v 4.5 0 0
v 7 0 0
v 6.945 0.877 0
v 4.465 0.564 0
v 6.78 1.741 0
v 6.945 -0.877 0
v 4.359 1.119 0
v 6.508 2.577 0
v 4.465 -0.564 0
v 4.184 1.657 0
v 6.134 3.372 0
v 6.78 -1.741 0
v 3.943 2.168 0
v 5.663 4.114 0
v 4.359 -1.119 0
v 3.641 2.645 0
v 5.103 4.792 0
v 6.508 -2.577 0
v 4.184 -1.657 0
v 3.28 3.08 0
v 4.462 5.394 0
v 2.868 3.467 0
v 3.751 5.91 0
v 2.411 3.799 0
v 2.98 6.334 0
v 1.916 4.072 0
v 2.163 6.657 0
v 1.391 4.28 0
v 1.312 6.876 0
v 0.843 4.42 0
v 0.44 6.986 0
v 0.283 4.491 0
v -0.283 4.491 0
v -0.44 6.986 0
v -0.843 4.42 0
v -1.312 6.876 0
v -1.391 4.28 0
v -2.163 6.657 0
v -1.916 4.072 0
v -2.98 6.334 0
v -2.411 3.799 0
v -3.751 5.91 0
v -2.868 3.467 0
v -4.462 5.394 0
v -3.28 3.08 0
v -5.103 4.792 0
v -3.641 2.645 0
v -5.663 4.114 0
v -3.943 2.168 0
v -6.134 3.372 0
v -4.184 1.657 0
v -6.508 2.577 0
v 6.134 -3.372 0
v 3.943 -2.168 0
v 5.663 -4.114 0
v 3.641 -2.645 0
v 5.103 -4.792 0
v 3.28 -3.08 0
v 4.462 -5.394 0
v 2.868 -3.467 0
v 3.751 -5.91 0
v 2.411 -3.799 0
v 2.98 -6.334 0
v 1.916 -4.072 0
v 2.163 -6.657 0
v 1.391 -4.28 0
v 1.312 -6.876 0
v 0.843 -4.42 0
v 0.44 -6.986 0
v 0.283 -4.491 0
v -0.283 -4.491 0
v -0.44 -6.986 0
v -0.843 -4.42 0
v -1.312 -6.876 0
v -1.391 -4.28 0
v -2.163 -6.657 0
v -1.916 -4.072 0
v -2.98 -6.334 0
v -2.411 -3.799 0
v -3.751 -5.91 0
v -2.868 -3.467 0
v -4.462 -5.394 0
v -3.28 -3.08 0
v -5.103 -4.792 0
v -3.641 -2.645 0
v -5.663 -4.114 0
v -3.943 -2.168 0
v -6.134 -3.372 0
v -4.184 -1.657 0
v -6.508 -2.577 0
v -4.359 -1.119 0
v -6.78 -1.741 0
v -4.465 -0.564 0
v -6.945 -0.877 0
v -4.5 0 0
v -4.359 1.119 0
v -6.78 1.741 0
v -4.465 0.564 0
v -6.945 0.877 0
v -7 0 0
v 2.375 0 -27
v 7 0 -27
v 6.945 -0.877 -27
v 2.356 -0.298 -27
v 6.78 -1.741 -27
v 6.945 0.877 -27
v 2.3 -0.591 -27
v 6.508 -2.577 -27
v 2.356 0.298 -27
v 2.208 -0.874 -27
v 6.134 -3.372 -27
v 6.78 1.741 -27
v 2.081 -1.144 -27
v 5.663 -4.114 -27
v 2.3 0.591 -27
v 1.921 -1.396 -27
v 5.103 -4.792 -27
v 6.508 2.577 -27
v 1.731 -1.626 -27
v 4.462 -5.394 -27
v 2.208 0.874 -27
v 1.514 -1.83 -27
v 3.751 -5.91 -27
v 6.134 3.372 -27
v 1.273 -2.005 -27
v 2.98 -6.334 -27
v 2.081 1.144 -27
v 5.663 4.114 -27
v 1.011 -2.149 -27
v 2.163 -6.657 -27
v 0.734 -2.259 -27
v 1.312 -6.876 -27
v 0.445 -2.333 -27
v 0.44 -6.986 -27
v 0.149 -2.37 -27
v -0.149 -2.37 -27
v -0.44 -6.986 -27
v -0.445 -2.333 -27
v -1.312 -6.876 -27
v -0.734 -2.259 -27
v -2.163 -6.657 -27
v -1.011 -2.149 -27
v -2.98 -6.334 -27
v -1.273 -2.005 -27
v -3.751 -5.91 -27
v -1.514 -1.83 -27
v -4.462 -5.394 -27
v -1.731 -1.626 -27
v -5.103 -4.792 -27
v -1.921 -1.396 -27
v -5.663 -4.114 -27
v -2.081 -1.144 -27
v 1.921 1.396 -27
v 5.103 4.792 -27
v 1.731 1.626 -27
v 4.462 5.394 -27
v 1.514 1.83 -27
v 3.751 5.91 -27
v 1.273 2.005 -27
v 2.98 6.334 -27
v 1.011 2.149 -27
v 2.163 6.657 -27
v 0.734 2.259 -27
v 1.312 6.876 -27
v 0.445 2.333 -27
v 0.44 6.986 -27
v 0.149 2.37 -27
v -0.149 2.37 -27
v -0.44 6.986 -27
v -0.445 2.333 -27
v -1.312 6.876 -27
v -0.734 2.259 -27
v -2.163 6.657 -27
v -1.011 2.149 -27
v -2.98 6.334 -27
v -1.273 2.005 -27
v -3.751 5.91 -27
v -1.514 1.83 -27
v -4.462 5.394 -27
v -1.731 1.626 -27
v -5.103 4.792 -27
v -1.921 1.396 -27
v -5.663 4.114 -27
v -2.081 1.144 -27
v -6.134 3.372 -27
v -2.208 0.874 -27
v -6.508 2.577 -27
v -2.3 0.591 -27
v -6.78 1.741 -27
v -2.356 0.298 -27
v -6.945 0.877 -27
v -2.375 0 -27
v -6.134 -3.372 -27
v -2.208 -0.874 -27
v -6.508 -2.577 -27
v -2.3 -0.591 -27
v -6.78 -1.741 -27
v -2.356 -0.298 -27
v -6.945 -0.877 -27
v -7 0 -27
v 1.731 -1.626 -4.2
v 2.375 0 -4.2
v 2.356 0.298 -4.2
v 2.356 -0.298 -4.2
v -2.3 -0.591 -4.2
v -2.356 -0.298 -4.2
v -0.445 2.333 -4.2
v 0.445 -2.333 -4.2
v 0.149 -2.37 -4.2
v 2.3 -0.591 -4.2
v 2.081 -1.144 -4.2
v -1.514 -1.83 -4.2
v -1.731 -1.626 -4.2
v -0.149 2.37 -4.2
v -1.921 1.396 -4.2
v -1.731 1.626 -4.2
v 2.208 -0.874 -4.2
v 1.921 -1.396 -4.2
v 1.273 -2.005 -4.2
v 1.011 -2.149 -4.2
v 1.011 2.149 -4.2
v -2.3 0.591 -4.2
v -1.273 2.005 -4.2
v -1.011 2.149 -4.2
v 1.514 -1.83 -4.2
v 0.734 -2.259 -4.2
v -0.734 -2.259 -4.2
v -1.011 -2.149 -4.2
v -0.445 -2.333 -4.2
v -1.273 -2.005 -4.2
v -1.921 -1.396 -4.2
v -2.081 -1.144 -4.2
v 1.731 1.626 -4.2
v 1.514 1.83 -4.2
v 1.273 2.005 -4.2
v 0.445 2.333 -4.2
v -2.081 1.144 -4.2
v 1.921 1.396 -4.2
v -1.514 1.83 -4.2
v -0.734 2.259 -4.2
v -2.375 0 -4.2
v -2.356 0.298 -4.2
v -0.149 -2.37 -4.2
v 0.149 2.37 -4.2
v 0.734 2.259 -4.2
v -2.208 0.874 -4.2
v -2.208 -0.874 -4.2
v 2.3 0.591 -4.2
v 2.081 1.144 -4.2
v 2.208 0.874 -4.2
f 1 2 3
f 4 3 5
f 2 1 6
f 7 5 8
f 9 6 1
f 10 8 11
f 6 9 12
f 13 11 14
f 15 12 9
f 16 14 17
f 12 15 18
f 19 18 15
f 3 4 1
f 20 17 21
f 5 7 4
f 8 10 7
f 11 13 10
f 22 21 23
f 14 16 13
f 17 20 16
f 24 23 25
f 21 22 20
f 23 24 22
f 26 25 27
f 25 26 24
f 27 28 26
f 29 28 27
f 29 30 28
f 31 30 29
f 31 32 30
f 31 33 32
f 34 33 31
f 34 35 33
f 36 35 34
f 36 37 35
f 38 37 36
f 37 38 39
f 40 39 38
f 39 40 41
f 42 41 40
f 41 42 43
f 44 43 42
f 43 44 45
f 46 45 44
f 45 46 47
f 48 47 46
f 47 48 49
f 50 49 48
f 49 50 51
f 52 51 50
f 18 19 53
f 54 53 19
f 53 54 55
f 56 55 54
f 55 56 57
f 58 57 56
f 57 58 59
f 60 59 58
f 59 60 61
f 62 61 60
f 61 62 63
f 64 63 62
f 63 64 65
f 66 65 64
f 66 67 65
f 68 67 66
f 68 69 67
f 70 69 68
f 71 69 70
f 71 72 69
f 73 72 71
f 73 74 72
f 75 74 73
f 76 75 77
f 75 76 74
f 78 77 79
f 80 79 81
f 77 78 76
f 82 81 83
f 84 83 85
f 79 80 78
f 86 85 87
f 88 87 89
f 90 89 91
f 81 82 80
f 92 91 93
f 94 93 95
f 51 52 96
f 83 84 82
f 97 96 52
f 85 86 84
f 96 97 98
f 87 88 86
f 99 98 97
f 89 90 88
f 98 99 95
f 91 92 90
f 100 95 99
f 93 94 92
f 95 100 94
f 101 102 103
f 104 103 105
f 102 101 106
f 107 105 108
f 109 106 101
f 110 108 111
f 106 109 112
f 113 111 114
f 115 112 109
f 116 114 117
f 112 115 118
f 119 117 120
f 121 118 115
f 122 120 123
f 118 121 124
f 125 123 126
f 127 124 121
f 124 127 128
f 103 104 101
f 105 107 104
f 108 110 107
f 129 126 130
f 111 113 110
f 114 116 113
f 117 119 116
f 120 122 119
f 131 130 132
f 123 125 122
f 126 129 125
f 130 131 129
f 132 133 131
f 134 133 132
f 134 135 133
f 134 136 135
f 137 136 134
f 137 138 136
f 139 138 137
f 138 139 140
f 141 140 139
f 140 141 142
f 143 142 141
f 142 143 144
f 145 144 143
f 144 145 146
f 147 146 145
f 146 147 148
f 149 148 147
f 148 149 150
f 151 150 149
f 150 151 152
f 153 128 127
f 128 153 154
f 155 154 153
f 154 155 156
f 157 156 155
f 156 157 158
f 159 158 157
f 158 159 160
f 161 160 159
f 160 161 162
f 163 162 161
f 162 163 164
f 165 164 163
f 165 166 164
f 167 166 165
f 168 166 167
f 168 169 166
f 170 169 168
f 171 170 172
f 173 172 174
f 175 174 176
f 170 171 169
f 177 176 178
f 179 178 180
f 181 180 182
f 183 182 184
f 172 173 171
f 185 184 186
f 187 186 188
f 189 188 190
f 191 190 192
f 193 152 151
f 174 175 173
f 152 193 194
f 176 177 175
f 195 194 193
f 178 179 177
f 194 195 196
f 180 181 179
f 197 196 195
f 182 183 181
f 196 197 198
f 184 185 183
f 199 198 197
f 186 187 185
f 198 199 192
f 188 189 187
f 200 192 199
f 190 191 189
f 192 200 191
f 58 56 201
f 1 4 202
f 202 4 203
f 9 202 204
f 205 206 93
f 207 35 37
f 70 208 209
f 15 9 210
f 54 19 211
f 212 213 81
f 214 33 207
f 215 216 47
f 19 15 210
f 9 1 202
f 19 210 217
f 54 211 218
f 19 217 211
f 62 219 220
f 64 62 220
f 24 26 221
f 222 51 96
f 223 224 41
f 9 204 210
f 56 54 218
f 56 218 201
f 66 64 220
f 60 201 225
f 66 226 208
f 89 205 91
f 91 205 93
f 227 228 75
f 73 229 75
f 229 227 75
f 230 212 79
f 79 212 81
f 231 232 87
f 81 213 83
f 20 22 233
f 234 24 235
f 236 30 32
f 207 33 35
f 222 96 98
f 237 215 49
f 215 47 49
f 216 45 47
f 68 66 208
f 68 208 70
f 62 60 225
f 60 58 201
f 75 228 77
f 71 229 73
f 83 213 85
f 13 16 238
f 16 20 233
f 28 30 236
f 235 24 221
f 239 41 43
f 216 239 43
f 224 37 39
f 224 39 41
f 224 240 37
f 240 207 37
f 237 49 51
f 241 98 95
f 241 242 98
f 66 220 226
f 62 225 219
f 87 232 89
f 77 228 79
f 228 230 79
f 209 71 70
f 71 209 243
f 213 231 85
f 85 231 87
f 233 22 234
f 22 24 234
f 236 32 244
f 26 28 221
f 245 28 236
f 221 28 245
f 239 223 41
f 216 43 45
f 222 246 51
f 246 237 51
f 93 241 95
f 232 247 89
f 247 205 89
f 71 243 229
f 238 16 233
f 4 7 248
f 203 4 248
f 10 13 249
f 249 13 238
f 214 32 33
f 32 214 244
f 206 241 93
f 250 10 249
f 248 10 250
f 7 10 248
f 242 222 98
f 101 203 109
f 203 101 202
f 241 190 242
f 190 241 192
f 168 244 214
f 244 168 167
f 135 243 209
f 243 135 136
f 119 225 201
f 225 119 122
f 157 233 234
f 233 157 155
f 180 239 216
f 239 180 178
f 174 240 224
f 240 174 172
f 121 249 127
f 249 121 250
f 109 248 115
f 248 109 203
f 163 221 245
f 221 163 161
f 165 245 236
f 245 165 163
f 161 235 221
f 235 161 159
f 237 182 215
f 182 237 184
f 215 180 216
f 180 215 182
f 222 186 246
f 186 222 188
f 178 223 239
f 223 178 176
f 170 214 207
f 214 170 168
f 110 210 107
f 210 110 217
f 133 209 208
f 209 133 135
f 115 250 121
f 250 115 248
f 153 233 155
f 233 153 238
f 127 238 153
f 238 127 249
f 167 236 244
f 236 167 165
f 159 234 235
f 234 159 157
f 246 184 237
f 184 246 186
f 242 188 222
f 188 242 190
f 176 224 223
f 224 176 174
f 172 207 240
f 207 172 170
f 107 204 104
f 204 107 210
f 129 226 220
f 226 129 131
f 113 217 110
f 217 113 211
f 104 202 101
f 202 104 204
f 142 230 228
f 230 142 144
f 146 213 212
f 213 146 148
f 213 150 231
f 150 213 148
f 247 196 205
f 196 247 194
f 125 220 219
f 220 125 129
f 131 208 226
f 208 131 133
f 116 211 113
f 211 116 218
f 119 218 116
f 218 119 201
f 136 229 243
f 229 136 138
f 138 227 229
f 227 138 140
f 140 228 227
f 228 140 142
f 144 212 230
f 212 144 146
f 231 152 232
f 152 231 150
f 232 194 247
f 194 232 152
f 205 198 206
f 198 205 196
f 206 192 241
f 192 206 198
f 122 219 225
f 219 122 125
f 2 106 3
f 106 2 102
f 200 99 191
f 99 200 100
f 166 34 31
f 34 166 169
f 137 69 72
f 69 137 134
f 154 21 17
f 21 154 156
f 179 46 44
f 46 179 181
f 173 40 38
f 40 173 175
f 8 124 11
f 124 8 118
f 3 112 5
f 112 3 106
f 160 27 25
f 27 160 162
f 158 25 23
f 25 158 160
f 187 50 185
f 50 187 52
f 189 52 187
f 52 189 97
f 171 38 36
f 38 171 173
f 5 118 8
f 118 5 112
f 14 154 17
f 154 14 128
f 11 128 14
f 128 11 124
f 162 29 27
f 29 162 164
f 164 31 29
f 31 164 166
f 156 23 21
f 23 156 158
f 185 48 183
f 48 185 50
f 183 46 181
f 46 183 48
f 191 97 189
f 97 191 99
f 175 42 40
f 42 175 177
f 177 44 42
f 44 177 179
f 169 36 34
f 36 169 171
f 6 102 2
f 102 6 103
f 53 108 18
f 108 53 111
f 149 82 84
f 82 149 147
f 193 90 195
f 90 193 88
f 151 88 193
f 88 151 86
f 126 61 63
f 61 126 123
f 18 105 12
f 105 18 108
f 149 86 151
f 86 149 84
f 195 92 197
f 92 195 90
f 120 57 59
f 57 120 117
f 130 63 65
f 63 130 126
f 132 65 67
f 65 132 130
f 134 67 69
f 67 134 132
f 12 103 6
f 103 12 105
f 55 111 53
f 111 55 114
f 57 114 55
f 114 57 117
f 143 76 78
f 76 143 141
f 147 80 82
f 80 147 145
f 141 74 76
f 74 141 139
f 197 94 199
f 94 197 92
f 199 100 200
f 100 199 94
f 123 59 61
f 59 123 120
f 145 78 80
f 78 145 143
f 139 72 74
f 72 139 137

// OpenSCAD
$fn = 50;


difference() {
	union() {
		translate(v = [0, 0, -27.0000000000]) {
			cylinder(h = 27, r = 7.0000000000);
		}
		cylinder(h = 0, r = 17.0000000000);
	}
	union() {
		translate(v = [0, 0, 0]) {
			rotate(a = [0, 0, 0]) {
				difference() {
					union() {
						#translate(v = [0, 0, -27.0000000000]) {
							cylinder(h = 27, r = 2.2500000000);
						}
						#translate(v = [0, 0, -4.2000000000]) {
							cylinder(h = 4.2000000000, r1 = 2.3750000000, r2 = 4.5000000000);
						}
						#translate(v = [0, 0, -27.0000000000]) {
							cylinder(h = 27, r = 2.3750000000);
						}
						#translate(v = [0, 0, -27.0000000000]) {
							cylinder(h = 27, r = 2.2500000000);
						}
					}
					union();
				}
			}
		}
	}
}
